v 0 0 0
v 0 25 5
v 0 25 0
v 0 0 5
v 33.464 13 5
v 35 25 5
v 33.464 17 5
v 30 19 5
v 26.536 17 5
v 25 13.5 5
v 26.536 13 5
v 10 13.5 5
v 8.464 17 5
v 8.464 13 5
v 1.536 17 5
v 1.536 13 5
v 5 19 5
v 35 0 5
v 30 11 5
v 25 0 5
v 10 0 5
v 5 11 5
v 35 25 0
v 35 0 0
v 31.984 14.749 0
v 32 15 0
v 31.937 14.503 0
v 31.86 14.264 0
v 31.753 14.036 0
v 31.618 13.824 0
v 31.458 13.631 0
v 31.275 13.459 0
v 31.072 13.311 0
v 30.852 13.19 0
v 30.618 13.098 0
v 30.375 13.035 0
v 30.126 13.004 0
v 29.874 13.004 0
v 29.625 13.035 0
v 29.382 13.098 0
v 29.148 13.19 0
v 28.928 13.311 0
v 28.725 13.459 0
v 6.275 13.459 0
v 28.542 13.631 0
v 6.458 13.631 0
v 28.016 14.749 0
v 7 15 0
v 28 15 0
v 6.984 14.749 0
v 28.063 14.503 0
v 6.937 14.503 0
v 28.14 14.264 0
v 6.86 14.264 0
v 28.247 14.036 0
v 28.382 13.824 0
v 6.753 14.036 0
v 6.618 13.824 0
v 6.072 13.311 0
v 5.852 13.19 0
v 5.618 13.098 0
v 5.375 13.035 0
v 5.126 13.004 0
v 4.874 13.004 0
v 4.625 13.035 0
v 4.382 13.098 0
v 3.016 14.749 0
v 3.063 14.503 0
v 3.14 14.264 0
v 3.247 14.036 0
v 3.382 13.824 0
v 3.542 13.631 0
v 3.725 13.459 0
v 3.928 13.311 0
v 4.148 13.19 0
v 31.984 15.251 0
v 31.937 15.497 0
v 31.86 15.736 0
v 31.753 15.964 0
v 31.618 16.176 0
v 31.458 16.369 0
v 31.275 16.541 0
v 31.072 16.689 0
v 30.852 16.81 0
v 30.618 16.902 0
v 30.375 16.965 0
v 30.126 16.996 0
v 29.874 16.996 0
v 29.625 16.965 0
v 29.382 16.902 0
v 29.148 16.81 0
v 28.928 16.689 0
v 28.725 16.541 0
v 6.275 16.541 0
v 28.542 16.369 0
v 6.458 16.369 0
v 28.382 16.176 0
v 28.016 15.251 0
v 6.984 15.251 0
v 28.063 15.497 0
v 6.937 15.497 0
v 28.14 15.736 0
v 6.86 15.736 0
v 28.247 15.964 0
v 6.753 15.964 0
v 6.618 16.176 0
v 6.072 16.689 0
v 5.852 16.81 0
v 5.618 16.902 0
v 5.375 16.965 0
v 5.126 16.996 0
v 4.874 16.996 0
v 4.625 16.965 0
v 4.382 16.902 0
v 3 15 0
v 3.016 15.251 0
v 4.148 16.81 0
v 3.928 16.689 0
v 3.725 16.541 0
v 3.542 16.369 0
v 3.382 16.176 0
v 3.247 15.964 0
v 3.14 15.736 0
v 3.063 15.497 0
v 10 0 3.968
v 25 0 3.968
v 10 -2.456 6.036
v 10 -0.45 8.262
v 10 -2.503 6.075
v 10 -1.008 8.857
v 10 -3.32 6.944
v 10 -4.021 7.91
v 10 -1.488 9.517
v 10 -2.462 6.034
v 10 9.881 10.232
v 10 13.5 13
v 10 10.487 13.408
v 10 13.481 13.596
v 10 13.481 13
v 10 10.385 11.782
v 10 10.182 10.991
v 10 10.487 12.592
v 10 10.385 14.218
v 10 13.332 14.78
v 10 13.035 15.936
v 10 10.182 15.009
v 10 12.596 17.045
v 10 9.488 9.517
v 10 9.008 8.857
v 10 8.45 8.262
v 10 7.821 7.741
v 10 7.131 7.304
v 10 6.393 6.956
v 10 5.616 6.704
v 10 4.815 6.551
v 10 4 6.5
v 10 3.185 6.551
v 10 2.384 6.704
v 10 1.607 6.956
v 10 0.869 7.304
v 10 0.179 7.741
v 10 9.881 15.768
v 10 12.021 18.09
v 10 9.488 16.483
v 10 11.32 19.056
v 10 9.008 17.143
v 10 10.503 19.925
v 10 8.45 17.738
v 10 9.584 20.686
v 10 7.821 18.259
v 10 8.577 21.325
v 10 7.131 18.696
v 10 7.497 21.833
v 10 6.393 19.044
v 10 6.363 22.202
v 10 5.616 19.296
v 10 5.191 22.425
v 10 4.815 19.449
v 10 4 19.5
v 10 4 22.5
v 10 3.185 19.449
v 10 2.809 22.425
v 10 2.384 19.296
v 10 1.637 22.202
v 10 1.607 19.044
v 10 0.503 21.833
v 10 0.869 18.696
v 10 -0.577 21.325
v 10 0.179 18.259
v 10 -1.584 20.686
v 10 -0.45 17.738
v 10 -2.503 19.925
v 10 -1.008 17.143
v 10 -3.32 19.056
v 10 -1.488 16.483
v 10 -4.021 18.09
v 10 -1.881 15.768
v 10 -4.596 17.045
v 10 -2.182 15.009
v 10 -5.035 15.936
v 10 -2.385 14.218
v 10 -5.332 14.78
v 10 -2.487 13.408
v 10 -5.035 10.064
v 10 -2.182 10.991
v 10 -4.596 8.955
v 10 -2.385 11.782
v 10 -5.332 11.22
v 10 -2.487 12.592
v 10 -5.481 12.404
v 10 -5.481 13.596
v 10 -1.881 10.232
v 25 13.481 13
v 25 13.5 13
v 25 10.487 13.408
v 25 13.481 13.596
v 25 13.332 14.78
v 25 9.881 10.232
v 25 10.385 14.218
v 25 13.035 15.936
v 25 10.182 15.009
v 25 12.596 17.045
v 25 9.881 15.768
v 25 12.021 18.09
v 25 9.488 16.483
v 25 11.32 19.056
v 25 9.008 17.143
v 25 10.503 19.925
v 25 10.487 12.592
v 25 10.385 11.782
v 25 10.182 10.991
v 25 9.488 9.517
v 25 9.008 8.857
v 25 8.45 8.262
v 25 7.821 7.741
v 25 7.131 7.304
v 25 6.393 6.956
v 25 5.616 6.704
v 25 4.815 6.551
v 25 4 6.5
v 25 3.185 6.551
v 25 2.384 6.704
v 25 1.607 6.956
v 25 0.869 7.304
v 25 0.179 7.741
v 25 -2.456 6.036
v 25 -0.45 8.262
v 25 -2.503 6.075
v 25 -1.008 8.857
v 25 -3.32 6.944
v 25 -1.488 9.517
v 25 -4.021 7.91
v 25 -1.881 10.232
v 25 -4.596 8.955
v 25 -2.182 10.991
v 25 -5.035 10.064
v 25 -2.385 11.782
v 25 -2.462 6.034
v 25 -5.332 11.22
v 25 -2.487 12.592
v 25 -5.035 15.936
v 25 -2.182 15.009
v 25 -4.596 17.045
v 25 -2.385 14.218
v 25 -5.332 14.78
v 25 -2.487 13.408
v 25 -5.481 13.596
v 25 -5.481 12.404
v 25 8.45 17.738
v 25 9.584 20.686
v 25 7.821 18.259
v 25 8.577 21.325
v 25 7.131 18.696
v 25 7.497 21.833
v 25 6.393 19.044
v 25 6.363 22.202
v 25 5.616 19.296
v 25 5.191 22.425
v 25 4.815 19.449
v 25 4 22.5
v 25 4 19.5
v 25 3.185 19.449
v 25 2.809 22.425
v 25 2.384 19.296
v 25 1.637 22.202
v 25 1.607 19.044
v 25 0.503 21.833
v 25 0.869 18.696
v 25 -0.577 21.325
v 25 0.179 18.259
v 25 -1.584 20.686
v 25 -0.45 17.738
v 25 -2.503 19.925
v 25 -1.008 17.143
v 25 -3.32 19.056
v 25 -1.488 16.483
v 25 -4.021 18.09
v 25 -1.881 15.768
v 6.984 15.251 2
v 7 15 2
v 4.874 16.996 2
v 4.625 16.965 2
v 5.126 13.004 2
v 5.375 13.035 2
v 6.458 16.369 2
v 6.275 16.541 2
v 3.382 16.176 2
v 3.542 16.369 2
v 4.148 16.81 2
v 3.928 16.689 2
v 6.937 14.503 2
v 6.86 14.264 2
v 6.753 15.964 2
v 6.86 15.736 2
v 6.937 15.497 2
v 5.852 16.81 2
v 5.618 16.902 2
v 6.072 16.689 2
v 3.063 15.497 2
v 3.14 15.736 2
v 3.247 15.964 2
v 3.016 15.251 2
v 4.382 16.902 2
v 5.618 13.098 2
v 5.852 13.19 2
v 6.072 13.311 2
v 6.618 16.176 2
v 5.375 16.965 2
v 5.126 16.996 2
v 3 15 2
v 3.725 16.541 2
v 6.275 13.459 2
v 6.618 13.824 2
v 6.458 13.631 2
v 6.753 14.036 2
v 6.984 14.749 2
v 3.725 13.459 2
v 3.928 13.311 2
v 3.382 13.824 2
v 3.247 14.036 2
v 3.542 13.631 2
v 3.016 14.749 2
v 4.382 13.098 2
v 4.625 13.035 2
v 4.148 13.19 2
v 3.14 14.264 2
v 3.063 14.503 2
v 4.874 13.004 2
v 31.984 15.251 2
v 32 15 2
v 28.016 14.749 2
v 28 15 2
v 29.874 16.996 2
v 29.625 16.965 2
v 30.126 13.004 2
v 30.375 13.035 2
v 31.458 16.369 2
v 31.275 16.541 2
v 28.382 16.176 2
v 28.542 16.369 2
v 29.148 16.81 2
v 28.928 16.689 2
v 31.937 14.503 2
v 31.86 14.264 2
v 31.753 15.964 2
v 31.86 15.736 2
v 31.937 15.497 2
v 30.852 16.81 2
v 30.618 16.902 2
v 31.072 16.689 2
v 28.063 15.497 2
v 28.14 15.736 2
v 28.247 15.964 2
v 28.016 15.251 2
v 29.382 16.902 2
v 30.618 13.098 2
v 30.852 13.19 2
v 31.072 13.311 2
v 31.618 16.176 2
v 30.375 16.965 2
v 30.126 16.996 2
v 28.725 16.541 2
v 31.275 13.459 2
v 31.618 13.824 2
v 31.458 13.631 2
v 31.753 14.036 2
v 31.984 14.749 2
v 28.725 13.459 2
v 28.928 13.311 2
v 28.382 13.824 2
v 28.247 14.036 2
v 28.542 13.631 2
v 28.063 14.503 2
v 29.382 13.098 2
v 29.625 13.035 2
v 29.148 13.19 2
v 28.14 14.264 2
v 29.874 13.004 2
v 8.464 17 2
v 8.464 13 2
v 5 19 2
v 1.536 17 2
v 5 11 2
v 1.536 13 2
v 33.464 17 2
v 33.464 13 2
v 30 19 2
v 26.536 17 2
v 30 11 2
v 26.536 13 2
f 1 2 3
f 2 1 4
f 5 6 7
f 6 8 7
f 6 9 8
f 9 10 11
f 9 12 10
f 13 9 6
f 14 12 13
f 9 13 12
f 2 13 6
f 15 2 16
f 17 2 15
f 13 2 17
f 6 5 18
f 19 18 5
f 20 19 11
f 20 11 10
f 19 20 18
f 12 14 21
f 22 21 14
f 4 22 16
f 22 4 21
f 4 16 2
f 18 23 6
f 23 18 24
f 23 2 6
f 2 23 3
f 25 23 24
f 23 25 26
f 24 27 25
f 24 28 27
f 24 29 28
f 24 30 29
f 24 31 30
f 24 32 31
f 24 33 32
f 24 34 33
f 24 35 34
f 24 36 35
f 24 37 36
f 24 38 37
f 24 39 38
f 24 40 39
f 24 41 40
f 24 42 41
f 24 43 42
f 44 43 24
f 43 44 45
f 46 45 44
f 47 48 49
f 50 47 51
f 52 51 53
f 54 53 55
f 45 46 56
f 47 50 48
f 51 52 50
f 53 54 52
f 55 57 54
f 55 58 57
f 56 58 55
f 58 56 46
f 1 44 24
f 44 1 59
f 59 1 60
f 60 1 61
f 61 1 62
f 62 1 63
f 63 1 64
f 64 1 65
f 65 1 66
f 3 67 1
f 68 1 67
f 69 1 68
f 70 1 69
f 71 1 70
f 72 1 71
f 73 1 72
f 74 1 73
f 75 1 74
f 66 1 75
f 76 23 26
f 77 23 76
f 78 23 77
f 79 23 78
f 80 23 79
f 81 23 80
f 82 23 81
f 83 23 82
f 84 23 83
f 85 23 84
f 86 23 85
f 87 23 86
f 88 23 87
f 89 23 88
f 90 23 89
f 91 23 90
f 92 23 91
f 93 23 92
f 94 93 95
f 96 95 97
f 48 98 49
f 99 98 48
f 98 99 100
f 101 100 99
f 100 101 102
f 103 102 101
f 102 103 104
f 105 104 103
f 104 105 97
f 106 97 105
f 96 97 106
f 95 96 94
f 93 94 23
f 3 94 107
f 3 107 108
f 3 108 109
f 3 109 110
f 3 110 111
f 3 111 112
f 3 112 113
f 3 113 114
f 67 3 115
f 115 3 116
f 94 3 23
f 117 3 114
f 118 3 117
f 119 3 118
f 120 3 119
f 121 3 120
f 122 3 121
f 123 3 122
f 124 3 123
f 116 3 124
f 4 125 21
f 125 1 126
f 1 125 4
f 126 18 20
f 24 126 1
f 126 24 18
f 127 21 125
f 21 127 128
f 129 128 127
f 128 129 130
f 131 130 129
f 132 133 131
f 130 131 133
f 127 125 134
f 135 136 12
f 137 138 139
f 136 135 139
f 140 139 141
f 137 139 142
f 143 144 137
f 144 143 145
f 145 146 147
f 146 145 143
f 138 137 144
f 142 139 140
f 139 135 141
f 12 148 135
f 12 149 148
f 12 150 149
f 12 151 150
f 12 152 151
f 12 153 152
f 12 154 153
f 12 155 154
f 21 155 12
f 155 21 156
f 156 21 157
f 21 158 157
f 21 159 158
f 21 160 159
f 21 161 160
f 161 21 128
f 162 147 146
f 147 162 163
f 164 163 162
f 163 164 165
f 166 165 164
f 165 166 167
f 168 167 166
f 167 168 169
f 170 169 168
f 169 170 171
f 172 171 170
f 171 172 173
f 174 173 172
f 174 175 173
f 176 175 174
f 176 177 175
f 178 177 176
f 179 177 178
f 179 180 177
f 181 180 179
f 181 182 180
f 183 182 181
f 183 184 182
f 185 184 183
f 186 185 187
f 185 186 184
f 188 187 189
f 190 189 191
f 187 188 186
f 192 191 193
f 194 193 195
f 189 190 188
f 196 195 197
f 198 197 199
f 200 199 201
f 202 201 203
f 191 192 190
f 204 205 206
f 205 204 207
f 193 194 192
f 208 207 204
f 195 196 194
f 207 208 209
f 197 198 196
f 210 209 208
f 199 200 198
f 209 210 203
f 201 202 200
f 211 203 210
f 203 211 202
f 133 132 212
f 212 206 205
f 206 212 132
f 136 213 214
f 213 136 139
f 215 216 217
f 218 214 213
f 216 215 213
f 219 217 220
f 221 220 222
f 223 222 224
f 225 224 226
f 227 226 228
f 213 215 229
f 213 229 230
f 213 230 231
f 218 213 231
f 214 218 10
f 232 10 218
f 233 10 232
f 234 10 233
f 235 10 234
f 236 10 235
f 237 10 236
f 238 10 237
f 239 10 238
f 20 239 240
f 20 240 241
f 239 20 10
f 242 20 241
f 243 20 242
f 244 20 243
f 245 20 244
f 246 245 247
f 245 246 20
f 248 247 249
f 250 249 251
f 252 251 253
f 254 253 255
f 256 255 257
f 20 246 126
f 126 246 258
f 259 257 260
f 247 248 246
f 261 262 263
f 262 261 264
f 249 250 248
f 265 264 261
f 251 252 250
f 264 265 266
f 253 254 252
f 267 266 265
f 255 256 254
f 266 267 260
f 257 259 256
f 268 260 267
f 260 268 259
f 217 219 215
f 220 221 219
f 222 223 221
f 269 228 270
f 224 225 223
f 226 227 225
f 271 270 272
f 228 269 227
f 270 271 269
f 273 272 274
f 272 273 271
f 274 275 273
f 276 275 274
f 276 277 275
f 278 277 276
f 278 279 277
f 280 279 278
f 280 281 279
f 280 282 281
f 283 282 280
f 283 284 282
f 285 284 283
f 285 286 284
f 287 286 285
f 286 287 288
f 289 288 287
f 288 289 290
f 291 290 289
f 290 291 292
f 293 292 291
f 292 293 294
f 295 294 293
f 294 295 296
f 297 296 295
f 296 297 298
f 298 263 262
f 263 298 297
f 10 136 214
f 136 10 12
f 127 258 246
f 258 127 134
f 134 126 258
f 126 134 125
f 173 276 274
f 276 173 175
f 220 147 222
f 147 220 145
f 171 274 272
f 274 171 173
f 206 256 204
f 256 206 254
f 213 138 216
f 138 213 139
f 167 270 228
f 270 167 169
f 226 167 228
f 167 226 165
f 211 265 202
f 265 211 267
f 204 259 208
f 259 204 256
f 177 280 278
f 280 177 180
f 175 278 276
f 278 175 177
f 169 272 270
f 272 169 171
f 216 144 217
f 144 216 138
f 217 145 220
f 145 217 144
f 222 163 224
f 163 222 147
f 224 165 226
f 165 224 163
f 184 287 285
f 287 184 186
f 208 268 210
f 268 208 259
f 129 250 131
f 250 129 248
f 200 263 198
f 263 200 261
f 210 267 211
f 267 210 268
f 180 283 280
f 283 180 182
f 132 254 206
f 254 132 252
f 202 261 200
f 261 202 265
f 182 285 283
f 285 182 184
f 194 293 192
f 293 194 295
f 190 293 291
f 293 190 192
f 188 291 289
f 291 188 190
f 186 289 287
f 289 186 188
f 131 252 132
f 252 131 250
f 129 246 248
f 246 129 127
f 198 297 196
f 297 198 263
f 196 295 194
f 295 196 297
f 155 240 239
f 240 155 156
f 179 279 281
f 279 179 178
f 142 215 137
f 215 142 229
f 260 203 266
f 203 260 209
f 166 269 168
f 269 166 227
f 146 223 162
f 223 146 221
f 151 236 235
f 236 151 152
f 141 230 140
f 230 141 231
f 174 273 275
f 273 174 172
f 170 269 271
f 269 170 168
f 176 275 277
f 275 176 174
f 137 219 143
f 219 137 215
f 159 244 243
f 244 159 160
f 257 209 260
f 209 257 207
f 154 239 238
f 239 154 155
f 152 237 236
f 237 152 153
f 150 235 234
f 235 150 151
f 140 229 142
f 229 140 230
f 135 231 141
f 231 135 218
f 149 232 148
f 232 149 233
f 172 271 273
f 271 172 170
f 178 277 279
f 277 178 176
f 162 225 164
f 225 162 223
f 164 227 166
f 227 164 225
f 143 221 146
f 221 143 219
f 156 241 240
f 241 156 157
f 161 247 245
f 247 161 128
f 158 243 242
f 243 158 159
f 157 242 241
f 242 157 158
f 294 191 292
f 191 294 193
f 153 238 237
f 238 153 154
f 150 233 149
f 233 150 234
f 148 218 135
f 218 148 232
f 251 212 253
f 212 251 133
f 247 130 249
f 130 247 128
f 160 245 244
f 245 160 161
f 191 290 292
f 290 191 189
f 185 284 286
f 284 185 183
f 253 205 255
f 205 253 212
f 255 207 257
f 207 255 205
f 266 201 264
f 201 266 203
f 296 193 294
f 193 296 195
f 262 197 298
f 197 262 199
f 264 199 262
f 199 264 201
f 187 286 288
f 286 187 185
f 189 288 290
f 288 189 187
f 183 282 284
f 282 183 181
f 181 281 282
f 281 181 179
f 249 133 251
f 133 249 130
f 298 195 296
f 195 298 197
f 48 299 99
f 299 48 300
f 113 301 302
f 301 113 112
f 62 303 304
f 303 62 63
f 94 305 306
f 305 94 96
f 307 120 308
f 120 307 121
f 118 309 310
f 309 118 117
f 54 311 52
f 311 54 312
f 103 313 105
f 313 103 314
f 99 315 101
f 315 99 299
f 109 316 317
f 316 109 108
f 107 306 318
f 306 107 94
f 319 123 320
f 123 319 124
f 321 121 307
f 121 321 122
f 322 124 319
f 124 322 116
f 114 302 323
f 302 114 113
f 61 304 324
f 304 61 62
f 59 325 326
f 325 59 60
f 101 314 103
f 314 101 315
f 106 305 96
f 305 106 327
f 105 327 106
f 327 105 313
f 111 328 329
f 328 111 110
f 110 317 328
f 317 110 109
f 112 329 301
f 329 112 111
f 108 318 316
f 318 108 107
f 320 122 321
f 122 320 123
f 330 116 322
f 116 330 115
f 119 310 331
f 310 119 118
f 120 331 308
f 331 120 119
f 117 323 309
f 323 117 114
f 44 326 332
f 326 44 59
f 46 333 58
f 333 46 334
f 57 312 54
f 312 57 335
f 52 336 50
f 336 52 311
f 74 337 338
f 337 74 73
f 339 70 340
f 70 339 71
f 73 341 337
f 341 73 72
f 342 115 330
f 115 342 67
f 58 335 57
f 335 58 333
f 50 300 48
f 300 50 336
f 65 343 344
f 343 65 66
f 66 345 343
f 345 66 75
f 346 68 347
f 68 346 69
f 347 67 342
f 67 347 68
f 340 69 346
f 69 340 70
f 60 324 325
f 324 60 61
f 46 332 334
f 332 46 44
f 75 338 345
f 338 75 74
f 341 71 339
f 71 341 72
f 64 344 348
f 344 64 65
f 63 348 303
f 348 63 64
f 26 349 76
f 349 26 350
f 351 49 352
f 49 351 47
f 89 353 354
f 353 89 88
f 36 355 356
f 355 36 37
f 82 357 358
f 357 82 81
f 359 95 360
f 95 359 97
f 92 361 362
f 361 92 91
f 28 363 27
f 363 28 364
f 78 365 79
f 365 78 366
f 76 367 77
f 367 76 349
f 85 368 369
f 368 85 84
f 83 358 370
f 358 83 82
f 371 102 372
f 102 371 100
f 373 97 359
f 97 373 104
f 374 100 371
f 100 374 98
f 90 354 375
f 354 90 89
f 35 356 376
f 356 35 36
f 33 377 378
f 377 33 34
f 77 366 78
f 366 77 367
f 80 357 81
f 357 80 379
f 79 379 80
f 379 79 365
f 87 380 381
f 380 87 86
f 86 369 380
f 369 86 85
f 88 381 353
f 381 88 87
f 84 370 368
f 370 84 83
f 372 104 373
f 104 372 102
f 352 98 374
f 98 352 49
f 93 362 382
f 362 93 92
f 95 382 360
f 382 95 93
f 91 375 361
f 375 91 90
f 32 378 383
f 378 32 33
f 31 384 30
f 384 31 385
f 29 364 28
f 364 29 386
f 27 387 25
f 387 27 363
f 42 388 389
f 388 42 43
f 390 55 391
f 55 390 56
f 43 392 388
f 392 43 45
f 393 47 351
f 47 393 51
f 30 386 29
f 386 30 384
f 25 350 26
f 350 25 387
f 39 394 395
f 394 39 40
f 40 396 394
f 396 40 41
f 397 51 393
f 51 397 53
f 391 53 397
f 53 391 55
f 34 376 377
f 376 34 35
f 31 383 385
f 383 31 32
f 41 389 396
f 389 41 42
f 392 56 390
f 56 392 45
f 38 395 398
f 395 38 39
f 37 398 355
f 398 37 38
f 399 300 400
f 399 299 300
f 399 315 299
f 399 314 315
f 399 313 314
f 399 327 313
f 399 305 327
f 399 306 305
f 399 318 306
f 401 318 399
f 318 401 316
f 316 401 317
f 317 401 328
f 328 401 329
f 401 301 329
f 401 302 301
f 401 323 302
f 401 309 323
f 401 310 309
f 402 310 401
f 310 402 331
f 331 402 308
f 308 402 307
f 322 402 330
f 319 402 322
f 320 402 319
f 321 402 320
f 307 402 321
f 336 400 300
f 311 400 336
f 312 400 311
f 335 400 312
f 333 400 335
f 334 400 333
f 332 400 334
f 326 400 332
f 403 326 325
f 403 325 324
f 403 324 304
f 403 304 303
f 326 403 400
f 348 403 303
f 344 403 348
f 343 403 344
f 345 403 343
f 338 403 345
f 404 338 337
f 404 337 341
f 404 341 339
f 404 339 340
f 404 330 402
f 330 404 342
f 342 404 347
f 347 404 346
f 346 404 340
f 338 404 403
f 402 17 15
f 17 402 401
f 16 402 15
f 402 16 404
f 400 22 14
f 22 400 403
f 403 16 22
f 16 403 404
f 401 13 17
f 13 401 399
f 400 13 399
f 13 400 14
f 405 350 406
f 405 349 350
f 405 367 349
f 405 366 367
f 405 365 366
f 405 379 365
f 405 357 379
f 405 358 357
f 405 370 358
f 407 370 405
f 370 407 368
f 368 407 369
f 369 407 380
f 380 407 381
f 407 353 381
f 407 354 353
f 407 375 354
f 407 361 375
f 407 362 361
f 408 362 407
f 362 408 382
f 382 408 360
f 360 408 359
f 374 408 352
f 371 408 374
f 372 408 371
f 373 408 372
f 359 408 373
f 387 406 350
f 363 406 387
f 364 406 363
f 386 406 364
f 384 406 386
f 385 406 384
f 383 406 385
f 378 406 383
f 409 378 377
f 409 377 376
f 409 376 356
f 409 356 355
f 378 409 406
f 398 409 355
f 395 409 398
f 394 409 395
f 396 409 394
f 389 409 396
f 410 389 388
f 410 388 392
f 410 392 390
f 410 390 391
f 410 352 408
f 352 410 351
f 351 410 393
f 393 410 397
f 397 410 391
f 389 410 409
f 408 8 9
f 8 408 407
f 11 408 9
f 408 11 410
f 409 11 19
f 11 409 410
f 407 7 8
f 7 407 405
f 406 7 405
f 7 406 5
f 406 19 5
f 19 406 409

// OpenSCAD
$fn=50;


difference() {
  union(){
    //Grundplatte
    cube([35,25,5]);
    //Zylinderausgleich links + rechts
    translate([10,8,5])cube([15,5.5,8]);
    rotate(90,[0,1,0]) translate([-5.6,0,10])rotate(20,[0,0,1])cylinder(15,5/2,5/2, $fn=3);
    //Zylinder      
    rotate(90,[0,1,0]) translate([-13,4,10])cylinder(15,19/2,19/2);
    
  }
  //Zylinderbohrung
  rotate(90,[0,1,0]) translate([-13,4,10])cylinder(15,13/2,13/2);
  //Befestigung (Mutter + Bohrung)
  translate([5,15,0]) cylinder(5,4/2,4/2);
  translate([30,15,0]) cylinder(5,4/2,4/2);
  translate([5,15,2]) rotate(90) cylinder(3,8/2,8/2, $fn=6);
  translate([30,15,2]) rotate(90) cylinder(3,8/2,8/2, $fn=6);
}
